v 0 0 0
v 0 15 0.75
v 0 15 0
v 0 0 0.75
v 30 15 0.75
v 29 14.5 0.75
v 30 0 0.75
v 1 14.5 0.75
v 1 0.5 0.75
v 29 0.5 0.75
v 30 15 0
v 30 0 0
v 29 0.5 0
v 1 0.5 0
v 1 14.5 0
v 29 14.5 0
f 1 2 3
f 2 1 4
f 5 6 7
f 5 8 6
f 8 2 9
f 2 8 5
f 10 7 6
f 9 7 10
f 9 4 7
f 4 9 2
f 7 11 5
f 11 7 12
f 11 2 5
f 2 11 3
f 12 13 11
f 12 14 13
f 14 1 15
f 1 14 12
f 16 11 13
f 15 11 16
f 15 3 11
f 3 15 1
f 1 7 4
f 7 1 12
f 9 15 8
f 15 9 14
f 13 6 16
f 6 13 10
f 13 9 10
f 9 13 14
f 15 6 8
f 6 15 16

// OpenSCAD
difference(){
scale([2,1,0.05])
	cube(15);
translate([1,0.5,-0.10])
scale([2,1,0.3])
	cube(14);
}
